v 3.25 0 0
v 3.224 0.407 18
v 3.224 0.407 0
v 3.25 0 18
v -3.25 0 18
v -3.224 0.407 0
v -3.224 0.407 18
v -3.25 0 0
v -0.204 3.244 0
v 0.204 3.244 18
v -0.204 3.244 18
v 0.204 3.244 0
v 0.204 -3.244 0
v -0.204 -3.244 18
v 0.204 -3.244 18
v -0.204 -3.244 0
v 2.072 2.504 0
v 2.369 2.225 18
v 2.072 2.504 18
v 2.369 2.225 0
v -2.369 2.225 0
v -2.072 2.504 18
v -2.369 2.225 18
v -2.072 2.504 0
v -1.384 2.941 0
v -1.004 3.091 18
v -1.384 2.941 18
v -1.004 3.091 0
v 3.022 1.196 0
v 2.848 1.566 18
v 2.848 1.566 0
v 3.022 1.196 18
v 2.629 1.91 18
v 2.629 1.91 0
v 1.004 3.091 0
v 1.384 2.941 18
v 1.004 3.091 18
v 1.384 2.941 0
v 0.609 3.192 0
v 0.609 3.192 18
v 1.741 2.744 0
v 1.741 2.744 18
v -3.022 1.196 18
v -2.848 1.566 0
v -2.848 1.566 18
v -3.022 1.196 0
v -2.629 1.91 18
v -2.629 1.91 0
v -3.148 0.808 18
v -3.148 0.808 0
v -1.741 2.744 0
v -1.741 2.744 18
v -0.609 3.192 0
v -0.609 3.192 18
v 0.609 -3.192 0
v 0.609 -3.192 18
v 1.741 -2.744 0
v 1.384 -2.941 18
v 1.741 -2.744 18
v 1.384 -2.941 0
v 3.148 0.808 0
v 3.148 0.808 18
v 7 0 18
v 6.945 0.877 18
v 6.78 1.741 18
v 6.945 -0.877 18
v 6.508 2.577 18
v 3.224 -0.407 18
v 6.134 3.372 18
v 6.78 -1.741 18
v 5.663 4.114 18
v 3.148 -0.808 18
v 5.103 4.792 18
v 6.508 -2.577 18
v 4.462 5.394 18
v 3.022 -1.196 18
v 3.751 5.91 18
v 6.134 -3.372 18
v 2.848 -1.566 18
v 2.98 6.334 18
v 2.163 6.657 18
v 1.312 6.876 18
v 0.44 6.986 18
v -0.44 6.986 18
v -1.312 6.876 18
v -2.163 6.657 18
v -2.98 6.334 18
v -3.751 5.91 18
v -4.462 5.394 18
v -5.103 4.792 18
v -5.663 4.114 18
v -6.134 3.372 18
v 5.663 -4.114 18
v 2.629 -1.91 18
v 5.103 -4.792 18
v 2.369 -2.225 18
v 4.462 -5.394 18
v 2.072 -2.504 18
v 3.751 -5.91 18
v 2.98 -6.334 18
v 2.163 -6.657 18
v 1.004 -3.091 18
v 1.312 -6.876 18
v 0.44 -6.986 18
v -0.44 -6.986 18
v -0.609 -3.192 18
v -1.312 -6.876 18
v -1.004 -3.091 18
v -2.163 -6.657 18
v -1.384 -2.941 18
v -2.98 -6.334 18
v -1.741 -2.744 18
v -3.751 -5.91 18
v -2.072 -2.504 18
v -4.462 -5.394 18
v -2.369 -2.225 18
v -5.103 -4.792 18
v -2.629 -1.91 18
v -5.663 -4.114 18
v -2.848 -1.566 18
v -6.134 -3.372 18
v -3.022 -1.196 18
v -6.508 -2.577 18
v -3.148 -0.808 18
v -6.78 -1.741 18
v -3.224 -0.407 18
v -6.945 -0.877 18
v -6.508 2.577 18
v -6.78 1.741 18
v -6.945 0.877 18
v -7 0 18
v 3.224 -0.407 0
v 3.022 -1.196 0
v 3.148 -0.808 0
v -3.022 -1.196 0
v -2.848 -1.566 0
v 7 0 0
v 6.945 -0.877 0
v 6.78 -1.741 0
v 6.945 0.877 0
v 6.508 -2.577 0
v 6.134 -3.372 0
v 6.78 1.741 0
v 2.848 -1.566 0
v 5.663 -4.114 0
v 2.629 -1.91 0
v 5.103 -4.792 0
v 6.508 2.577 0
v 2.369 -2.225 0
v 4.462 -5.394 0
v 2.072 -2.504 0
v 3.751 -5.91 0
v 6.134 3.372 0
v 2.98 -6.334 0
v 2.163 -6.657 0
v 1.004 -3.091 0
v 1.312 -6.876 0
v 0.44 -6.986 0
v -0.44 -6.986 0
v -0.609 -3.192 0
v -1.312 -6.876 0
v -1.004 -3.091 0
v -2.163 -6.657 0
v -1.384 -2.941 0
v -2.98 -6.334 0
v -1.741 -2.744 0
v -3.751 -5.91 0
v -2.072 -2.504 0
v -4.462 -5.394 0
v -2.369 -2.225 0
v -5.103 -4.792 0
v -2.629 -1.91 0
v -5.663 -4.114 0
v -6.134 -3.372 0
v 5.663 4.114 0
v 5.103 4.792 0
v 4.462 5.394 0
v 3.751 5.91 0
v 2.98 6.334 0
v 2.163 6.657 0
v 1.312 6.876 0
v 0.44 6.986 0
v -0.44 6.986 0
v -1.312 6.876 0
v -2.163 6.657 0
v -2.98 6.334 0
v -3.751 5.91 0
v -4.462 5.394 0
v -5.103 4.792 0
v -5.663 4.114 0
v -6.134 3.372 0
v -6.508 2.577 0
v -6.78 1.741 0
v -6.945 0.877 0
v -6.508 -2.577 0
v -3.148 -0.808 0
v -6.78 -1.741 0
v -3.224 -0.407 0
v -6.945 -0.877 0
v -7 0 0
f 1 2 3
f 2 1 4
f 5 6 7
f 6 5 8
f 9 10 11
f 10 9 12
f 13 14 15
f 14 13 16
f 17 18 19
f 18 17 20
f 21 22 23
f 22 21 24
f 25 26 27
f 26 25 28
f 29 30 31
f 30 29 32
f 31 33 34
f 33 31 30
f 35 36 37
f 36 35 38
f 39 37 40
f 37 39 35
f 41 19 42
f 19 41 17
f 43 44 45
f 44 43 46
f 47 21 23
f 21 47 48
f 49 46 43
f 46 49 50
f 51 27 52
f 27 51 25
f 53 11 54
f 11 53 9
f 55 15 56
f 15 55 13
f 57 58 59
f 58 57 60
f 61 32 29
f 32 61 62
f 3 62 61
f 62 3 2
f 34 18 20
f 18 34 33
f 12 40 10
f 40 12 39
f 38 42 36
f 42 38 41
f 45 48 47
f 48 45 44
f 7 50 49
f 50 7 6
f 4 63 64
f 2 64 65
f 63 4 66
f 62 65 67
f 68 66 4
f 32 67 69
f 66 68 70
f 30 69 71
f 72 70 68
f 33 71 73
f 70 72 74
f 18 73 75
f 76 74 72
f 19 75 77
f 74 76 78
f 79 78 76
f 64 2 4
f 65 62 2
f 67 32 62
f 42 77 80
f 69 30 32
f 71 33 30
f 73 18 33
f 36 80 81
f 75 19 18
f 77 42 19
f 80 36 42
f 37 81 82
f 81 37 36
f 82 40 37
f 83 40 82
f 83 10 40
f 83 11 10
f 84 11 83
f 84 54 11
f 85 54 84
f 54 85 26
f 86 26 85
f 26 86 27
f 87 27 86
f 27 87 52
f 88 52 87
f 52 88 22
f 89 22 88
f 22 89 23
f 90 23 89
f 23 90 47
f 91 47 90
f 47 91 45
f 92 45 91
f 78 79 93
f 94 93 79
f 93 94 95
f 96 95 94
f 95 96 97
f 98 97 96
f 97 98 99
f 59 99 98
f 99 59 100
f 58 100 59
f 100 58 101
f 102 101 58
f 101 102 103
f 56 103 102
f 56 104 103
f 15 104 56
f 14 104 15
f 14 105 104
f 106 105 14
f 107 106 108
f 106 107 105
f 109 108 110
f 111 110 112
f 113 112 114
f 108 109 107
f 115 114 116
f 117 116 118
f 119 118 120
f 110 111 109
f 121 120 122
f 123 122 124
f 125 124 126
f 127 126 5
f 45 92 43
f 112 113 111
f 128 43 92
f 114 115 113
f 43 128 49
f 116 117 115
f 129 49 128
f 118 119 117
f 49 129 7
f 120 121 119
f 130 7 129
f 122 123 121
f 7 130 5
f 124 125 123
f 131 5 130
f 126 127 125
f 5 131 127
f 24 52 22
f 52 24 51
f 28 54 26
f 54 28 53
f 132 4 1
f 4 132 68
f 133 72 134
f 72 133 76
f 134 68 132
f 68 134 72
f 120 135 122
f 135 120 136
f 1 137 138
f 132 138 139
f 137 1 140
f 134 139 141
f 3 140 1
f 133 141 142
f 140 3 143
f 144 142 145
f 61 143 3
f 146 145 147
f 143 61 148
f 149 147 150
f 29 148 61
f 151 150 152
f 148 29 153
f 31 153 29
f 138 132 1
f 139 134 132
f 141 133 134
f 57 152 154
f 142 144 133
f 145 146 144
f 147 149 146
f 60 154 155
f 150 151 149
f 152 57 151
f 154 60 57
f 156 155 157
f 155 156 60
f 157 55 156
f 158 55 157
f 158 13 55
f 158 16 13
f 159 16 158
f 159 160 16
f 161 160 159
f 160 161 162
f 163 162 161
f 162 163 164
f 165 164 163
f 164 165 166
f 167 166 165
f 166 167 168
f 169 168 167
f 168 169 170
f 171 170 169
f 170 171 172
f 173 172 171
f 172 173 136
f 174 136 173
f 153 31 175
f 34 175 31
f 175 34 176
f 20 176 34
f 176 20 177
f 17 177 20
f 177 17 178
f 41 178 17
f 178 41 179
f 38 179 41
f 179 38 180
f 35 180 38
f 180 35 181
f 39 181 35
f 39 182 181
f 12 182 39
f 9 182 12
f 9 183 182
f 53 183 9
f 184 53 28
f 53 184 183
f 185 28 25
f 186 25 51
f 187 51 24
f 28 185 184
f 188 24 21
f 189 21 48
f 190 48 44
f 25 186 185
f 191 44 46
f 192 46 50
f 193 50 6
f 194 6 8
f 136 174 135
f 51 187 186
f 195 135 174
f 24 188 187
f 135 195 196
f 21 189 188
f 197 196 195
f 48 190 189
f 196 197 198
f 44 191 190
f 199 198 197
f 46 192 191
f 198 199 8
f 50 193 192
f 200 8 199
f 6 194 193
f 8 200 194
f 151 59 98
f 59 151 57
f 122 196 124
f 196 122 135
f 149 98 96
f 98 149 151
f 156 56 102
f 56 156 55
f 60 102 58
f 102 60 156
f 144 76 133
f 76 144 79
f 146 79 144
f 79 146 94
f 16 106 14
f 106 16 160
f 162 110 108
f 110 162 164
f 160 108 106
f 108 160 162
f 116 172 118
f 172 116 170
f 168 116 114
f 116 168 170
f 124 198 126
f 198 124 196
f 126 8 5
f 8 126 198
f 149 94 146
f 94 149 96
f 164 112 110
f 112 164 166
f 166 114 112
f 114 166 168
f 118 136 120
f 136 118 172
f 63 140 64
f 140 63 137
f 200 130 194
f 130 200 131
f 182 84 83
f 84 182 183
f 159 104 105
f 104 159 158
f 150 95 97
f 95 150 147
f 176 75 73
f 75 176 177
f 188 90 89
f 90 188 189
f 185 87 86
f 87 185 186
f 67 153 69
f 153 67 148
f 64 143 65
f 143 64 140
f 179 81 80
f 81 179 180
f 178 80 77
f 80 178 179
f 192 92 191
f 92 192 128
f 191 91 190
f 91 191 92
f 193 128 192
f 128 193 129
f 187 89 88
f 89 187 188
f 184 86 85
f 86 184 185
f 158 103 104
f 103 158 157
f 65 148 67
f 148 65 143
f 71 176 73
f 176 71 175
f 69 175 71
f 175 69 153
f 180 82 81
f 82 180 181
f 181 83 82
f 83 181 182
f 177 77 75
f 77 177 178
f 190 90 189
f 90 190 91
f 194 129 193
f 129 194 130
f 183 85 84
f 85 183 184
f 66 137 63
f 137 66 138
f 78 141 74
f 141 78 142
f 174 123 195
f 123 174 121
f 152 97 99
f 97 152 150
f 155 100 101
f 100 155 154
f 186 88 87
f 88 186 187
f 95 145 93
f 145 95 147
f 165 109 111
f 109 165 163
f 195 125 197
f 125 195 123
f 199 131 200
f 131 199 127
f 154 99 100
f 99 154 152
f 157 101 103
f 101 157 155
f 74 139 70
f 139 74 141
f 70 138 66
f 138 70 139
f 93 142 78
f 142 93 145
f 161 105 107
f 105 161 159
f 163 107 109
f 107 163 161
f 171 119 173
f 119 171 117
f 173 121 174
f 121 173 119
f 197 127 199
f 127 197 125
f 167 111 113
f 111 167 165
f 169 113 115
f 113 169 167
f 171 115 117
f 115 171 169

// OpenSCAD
$fn = 50;


difference() {
	union() {
		cylinder(h = 18, r = 7.0000000000);
	}
	union() {
		translate(v = [0.0000000000, 0.0000000000, -100.0000000000]) {
			cylinder(h = 200, r = 3.2500000000);
		}
		cylinder(h = 18, r = 1.8000000000);
		cylinder(h = 18, r = 1.8000000000);
		cylinder(h = 18, r = 1.8000000000);
	}
}
